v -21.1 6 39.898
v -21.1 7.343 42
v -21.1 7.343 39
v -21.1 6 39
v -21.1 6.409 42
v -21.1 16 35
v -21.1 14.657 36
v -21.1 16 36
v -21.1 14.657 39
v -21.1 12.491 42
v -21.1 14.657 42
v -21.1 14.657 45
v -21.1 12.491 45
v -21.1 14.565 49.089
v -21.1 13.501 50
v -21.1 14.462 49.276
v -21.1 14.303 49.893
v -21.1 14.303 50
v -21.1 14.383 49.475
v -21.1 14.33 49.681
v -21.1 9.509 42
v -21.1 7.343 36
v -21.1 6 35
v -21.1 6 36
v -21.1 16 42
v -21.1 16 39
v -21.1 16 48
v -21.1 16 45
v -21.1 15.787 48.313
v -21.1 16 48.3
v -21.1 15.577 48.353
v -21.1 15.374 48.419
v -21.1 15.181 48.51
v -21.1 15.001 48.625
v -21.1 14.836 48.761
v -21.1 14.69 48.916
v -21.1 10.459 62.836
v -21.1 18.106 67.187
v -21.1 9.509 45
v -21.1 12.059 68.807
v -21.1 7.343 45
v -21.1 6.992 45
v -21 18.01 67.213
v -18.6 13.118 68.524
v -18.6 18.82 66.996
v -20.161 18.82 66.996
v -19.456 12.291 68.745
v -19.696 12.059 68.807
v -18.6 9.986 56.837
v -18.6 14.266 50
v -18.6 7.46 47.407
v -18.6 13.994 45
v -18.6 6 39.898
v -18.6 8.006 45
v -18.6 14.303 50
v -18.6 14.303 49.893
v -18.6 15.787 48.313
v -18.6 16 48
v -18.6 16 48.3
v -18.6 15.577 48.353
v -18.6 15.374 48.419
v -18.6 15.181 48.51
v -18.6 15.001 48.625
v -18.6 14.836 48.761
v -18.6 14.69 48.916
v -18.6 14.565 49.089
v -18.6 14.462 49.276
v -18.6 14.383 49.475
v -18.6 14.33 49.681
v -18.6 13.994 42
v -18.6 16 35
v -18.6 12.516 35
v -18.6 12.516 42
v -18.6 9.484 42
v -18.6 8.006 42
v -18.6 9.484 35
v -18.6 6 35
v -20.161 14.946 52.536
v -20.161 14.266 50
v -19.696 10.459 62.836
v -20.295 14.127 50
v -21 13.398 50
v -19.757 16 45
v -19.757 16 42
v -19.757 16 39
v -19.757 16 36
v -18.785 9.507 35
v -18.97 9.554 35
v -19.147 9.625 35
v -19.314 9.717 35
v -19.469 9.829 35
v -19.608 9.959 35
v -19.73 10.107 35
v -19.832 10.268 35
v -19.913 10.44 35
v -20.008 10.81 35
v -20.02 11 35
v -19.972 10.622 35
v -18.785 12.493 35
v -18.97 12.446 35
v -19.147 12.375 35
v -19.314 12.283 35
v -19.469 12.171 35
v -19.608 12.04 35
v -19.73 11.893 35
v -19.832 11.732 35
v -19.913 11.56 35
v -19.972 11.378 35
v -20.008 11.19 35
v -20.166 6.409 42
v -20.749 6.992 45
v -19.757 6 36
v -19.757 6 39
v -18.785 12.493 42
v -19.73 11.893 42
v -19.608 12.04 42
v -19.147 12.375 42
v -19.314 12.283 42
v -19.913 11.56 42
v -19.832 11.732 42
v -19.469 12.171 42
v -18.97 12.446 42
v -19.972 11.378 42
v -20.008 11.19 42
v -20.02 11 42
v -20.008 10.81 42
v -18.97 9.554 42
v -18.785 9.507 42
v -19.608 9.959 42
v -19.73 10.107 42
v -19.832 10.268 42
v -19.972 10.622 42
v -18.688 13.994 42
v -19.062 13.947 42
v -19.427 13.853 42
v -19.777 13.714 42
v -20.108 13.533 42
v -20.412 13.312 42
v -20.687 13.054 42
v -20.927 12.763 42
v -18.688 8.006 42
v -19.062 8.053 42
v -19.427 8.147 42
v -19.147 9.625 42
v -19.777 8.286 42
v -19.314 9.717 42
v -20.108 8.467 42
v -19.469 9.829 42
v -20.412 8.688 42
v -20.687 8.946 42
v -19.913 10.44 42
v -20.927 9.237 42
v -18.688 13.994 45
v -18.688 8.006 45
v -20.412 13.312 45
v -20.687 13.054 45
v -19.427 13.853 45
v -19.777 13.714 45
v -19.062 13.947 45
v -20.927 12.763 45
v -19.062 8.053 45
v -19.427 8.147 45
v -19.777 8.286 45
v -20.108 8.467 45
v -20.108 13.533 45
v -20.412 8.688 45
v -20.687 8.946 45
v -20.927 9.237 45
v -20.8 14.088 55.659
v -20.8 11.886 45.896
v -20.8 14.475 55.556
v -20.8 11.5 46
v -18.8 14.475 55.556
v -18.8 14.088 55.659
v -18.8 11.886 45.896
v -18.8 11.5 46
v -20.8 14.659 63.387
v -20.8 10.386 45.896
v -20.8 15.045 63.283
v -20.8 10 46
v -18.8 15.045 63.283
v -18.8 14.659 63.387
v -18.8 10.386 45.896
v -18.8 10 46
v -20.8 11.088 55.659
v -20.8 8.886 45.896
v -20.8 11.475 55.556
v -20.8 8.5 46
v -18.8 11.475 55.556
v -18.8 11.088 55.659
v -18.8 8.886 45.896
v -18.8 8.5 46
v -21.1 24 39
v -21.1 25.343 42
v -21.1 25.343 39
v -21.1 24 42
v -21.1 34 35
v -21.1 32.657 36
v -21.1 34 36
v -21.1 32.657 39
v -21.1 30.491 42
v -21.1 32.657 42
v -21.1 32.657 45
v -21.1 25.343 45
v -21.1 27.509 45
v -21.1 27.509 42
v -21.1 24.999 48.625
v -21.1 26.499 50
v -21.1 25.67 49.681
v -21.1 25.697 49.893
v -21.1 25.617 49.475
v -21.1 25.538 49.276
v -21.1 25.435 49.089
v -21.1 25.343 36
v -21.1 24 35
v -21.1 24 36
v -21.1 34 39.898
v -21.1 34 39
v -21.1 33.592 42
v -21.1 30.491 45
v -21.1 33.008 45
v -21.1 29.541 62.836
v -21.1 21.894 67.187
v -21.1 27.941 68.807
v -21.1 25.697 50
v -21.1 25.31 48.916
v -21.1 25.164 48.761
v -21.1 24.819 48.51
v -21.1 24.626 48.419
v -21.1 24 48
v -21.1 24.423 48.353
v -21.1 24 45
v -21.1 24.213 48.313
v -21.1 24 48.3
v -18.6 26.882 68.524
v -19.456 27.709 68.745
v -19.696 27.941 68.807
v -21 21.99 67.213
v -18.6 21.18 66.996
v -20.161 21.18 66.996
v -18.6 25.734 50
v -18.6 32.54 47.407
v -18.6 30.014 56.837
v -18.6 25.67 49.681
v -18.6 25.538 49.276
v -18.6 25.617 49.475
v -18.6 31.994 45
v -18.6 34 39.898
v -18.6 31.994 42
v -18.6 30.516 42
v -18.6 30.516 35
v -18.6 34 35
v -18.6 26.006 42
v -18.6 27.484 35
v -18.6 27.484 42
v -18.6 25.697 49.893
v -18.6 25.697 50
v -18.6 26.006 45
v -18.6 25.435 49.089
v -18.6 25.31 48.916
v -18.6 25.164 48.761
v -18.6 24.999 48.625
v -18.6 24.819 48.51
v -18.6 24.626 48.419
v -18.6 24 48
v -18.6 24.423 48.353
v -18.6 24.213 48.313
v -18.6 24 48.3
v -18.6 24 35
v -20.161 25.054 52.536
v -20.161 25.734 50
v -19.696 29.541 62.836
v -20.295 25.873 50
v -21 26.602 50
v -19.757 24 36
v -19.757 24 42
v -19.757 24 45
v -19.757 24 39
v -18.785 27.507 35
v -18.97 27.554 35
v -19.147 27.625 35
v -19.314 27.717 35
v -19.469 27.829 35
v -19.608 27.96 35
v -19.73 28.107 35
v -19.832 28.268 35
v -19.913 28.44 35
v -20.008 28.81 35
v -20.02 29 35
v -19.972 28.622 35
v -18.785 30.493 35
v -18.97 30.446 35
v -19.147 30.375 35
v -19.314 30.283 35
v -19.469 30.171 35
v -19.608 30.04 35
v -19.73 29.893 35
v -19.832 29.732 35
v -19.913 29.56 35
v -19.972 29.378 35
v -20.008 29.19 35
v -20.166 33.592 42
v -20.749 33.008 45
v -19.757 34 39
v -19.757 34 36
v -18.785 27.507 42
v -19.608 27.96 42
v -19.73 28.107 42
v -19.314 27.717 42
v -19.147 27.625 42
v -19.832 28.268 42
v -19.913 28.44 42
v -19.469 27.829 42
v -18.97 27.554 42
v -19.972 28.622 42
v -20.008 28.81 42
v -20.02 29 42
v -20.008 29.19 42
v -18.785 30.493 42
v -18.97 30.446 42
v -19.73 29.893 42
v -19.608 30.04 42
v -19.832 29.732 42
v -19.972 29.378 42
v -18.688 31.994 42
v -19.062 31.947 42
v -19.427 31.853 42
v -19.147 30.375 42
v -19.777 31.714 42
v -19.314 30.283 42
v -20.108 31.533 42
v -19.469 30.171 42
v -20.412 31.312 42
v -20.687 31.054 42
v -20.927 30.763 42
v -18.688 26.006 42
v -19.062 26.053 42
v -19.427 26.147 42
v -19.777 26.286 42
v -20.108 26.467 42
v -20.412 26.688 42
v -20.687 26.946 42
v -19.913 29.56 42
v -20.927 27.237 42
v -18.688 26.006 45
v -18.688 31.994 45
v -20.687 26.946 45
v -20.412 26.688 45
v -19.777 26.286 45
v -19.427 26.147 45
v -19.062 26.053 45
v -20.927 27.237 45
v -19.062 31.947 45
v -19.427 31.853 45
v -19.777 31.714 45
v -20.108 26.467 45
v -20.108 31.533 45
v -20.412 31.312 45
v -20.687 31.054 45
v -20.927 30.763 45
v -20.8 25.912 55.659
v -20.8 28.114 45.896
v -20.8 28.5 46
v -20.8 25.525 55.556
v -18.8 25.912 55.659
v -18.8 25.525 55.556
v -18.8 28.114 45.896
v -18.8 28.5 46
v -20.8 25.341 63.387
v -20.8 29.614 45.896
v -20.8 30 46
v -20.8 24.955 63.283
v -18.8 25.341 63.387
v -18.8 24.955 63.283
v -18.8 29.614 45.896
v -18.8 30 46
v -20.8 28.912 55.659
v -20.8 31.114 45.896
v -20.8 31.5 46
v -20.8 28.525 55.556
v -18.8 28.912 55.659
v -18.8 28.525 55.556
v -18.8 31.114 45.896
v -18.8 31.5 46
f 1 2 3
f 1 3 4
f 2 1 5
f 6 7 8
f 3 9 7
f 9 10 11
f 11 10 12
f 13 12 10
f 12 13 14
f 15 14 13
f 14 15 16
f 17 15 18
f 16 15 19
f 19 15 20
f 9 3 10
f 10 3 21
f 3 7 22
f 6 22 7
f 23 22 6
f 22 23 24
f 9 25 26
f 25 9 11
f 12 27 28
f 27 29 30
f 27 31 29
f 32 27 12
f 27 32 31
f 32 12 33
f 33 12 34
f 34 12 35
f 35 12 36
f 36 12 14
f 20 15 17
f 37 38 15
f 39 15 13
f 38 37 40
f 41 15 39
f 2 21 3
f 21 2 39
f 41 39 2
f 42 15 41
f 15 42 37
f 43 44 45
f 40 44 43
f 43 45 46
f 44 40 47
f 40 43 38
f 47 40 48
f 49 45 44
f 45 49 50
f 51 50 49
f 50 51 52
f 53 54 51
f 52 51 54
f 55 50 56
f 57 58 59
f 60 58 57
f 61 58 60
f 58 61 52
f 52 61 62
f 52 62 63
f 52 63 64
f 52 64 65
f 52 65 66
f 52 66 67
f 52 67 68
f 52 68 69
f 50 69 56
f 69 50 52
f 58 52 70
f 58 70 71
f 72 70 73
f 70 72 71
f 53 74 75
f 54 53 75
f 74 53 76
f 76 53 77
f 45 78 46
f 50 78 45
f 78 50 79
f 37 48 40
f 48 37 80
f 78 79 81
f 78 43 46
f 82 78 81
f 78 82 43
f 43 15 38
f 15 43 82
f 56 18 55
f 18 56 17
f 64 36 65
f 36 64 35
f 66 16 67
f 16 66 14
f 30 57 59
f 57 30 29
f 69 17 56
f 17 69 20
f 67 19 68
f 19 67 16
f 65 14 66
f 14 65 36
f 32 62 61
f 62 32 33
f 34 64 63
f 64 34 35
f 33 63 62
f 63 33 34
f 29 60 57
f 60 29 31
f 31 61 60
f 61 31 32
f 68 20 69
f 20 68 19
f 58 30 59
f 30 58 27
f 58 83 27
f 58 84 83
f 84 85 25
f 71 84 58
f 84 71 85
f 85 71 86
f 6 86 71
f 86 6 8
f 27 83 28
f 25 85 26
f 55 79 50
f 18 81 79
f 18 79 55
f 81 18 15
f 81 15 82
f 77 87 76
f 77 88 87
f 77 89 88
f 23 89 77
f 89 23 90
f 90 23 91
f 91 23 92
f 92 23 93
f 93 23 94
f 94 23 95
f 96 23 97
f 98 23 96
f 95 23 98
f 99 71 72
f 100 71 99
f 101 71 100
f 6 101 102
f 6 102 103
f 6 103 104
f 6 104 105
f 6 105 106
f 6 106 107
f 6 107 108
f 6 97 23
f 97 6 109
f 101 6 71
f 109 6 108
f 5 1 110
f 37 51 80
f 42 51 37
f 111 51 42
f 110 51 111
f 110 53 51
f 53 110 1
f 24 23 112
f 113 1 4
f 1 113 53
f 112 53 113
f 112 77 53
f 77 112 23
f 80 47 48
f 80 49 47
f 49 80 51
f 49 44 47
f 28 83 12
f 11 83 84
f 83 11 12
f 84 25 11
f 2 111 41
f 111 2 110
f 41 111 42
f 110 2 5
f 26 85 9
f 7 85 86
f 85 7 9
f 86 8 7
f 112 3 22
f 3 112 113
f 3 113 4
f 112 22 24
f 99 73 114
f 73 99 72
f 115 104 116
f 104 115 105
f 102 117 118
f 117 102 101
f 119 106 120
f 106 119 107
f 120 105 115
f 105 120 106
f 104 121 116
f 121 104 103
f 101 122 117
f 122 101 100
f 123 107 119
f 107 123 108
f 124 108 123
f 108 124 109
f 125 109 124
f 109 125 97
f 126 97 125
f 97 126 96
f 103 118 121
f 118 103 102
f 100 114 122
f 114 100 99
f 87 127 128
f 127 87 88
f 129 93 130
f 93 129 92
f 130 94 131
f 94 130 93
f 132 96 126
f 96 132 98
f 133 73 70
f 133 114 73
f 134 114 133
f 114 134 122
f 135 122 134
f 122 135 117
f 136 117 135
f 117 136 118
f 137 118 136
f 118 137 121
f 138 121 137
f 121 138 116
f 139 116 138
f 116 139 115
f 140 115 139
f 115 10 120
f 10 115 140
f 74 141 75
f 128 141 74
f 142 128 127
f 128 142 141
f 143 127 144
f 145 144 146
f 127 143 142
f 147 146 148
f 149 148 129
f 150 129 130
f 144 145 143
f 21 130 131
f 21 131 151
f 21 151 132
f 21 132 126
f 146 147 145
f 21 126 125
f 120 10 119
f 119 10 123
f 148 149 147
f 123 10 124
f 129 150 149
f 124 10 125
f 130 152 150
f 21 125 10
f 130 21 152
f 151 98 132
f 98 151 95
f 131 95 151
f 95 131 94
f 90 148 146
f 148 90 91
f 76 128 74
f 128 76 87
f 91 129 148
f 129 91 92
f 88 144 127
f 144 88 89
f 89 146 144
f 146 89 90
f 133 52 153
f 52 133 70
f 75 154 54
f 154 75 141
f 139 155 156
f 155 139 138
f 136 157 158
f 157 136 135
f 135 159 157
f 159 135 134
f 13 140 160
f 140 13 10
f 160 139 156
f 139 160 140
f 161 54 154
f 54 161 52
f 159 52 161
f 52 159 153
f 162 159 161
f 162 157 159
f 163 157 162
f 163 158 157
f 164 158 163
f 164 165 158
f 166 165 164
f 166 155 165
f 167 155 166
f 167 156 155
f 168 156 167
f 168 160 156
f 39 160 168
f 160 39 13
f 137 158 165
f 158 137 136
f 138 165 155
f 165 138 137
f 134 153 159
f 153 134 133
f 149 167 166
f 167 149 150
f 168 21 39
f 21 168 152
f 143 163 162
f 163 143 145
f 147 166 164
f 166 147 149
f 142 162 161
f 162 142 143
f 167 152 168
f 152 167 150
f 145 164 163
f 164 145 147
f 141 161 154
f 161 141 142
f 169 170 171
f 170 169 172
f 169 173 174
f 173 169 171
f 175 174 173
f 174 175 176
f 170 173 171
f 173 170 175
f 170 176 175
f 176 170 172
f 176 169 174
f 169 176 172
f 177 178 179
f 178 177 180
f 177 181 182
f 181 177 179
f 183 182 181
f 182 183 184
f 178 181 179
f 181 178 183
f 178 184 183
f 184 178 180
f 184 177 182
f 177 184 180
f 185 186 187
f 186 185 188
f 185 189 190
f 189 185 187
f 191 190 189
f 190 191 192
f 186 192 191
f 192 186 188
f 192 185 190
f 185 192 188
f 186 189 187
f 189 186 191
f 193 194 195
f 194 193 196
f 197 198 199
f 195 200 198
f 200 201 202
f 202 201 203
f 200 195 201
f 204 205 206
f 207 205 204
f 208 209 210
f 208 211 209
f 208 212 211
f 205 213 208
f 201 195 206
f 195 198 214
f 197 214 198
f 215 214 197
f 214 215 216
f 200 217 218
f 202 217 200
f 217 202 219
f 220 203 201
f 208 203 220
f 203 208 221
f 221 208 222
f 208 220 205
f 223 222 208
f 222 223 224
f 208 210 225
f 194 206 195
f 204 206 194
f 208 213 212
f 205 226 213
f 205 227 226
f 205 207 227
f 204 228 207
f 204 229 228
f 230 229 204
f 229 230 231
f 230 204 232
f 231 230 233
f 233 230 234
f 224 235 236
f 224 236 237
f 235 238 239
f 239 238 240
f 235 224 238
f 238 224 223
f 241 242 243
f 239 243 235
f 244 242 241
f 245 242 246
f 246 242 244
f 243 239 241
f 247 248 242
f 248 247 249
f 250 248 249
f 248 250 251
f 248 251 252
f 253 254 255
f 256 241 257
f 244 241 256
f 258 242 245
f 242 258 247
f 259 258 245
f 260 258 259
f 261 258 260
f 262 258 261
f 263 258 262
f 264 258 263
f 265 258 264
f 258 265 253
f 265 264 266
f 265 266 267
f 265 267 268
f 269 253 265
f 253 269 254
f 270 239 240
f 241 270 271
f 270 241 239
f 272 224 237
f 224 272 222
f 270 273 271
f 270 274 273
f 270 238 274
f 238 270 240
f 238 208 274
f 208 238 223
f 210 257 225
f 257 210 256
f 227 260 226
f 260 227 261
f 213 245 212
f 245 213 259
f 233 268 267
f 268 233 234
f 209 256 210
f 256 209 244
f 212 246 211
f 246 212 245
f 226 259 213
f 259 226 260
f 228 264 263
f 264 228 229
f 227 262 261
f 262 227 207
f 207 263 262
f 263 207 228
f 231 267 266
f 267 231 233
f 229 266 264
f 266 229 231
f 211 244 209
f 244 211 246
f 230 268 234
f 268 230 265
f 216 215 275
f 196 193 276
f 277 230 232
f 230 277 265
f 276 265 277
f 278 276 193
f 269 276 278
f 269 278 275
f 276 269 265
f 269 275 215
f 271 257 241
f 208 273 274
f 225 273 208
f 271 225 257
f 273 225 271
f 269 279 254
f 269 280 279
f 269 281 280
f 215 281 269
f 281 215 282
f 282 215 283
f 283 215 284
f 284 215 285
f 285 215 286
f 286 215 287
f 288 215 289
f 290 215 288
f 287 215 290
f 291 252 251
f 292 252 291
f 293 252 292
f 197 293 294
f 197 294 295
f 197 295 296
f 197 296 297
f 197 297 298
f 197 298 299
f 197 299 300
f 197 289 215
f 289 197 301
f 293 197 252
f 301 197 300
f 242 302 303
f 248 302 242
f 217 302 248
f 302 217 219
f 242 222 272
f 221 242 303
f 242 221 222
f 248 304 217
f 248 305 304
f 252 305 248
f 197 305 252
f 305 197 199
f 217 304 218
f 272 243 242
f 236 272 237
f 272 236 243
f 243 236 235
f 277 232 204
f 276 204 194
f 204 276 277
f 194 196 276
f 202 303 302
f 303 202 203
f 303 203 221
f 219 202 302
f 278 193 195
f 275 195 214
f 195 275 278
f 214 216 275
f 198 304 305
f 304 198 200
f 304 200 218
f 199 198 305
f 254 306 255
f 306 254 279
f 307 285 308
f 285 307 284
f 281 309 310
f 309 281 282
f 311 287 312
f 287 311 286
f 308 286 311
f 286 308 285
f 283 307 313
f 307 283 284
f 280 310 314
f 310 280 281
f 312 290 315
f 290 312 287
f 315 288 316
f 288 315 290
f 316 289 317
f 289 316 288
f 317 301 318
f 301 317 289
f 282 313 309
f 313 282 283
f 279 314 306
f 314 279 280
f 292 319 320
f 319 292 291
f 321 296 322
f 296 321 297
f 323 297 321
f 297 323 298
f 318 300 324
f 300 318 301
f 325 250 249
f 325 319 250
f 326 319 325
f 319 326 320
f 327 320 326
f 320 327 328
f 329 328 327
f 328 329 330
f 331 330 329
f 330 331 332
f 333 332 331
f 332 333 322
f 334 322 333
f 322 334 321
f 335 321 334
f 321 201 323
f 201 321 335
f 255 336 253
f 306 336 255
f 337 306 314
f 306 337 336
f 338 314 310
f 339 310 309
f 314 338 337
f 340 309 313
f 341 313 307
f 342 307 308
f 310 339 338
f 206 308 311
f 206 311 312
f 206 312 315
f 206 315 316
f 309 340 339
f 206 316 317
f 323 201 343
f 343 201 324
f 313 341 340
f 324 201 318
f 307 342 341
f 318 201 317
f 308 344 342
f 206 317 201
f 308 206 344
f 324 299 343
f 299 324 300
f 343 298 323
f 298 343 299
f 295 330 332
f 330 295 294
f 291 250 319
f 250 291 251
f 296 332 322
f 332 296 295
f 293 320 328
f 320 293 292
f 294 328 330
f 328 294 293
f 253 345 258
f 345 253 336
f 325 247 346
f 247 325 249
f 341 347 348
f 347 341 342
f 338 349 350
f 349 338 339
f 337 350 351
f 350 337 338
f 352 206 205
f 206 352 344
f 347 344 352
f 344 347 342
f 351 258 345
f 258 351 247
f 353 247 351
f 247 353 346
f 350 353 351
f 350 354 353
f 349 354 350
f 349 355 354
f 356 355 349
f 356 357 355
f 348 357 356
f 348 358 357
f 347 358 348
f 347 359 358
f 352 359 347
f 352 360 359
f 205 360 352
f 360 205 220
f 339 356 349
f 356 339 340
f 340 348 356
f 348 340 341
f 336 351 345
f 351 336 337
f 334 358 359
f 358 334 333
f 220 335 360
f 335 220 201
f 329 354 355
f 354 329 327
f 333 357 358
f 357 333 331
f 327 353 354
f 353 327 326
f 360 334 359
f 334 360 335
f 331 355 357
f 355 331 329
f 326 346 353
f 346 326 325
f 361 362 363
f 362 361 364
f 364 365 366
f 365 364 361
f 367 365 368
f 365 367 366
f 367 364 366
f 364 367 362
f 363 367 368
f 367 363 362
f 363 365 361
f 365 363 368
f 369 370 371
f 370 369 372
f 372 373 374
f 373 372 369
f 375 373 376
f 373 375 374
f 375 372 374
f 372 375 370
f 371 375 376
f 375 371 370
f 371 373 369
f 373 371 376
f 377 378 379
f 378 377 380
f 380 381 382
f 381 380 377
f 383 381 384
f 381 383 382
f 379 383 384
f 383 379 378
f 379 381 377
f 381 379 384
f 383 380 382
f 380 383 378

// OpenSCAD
// PRUSA iteration3
// Cable holder
// GNU GPL v3
// Josef Průša <iam@josefprusa.cz> and contributors
// http://www.reprap.org/wiki/Prusa_Mendel
// http://prusamendel.org

module cable_holder()
{
    
    difference()
    {
    
    union()
    {
        // body
        translate([-21.1,3,35]) cube([2.5,13,13]);
        difference()
        {
        translate([-21.1,3,35]) rotate([-15,0,0]) cube([2.5,7,35]);
        rotate([-15,0,0]) translate([-21,0,38]) rotate([0,0,45]) cube([2.5,2.5,35]);
        }
        
        //round reinforcement
        difference()
        {
        translate([-21.1,16,50]) rotate([0,90,0])cylinder(r=4, h=2.5, $fn=50); 
        translate([-22,16,50]) rotate([0,90,0])cylinder(r=1.7, h=4, $fn=50); 

        translate([-21.6,16,45]) cube([4,10,10]);        
        translate([-21.6,12,50]) cube([4,10,10]);        
            
        }
    }
    
    // side angle cut
    translate([-22,-1.5,38]) rotate([-11,0,0]) cube([5,7,45]);
    
    // side cut
    translate([-22,-2,33]) cube([8,8,12]);

    // angled side cut
    rotate([-15,0,0]) translate([-18,-8,39]) rotate([0,0,45]) cube([3.5,2.5,35]);
    
    //zipties
    translate([-25,15,42]) rotate([0,0,-45]) cube([3,10,3]);
    translate([-20,2,42]) rotate([0,0,45]) cube([3,10,3]);
    translate([-25,15,36]) rotate([0,0,-45]) cube([3,10,3]);
    translate([-20,2,36]) rotate([0,0,45]) cube([3,10,3]);
    
    // M3 screw
    translate([-18.5,11,19]) rotate([0,0,0])cylinder(r=1.52, h=23, $fn=50); 
    translate([-18.5,11,42]) rotate([0,0,0])cylinder(r=3, h=3, $fn=50);     
    
    // bottom cut
    translate([-21.6,-9,25]) cube([4,26,10]);
    
    
    //selective infill
    translate([-20.8,11.5,46]) rotate([-15,0,0]) cube([2,0.4,10]);
    translate([-20.8,10,46]) rotate([-15,0,0]) cube([2,0.4,18]);
    translate([-20.8,8.5,46]) rotate([-15,0,0]) cube([2,0.4,10]);
    
    }
    
    
    
    
       
}

 
 

cable_holder();
translate([0,40,0]) rotate([0,180,180]) mirror([0,0,1]) cable_holder();
